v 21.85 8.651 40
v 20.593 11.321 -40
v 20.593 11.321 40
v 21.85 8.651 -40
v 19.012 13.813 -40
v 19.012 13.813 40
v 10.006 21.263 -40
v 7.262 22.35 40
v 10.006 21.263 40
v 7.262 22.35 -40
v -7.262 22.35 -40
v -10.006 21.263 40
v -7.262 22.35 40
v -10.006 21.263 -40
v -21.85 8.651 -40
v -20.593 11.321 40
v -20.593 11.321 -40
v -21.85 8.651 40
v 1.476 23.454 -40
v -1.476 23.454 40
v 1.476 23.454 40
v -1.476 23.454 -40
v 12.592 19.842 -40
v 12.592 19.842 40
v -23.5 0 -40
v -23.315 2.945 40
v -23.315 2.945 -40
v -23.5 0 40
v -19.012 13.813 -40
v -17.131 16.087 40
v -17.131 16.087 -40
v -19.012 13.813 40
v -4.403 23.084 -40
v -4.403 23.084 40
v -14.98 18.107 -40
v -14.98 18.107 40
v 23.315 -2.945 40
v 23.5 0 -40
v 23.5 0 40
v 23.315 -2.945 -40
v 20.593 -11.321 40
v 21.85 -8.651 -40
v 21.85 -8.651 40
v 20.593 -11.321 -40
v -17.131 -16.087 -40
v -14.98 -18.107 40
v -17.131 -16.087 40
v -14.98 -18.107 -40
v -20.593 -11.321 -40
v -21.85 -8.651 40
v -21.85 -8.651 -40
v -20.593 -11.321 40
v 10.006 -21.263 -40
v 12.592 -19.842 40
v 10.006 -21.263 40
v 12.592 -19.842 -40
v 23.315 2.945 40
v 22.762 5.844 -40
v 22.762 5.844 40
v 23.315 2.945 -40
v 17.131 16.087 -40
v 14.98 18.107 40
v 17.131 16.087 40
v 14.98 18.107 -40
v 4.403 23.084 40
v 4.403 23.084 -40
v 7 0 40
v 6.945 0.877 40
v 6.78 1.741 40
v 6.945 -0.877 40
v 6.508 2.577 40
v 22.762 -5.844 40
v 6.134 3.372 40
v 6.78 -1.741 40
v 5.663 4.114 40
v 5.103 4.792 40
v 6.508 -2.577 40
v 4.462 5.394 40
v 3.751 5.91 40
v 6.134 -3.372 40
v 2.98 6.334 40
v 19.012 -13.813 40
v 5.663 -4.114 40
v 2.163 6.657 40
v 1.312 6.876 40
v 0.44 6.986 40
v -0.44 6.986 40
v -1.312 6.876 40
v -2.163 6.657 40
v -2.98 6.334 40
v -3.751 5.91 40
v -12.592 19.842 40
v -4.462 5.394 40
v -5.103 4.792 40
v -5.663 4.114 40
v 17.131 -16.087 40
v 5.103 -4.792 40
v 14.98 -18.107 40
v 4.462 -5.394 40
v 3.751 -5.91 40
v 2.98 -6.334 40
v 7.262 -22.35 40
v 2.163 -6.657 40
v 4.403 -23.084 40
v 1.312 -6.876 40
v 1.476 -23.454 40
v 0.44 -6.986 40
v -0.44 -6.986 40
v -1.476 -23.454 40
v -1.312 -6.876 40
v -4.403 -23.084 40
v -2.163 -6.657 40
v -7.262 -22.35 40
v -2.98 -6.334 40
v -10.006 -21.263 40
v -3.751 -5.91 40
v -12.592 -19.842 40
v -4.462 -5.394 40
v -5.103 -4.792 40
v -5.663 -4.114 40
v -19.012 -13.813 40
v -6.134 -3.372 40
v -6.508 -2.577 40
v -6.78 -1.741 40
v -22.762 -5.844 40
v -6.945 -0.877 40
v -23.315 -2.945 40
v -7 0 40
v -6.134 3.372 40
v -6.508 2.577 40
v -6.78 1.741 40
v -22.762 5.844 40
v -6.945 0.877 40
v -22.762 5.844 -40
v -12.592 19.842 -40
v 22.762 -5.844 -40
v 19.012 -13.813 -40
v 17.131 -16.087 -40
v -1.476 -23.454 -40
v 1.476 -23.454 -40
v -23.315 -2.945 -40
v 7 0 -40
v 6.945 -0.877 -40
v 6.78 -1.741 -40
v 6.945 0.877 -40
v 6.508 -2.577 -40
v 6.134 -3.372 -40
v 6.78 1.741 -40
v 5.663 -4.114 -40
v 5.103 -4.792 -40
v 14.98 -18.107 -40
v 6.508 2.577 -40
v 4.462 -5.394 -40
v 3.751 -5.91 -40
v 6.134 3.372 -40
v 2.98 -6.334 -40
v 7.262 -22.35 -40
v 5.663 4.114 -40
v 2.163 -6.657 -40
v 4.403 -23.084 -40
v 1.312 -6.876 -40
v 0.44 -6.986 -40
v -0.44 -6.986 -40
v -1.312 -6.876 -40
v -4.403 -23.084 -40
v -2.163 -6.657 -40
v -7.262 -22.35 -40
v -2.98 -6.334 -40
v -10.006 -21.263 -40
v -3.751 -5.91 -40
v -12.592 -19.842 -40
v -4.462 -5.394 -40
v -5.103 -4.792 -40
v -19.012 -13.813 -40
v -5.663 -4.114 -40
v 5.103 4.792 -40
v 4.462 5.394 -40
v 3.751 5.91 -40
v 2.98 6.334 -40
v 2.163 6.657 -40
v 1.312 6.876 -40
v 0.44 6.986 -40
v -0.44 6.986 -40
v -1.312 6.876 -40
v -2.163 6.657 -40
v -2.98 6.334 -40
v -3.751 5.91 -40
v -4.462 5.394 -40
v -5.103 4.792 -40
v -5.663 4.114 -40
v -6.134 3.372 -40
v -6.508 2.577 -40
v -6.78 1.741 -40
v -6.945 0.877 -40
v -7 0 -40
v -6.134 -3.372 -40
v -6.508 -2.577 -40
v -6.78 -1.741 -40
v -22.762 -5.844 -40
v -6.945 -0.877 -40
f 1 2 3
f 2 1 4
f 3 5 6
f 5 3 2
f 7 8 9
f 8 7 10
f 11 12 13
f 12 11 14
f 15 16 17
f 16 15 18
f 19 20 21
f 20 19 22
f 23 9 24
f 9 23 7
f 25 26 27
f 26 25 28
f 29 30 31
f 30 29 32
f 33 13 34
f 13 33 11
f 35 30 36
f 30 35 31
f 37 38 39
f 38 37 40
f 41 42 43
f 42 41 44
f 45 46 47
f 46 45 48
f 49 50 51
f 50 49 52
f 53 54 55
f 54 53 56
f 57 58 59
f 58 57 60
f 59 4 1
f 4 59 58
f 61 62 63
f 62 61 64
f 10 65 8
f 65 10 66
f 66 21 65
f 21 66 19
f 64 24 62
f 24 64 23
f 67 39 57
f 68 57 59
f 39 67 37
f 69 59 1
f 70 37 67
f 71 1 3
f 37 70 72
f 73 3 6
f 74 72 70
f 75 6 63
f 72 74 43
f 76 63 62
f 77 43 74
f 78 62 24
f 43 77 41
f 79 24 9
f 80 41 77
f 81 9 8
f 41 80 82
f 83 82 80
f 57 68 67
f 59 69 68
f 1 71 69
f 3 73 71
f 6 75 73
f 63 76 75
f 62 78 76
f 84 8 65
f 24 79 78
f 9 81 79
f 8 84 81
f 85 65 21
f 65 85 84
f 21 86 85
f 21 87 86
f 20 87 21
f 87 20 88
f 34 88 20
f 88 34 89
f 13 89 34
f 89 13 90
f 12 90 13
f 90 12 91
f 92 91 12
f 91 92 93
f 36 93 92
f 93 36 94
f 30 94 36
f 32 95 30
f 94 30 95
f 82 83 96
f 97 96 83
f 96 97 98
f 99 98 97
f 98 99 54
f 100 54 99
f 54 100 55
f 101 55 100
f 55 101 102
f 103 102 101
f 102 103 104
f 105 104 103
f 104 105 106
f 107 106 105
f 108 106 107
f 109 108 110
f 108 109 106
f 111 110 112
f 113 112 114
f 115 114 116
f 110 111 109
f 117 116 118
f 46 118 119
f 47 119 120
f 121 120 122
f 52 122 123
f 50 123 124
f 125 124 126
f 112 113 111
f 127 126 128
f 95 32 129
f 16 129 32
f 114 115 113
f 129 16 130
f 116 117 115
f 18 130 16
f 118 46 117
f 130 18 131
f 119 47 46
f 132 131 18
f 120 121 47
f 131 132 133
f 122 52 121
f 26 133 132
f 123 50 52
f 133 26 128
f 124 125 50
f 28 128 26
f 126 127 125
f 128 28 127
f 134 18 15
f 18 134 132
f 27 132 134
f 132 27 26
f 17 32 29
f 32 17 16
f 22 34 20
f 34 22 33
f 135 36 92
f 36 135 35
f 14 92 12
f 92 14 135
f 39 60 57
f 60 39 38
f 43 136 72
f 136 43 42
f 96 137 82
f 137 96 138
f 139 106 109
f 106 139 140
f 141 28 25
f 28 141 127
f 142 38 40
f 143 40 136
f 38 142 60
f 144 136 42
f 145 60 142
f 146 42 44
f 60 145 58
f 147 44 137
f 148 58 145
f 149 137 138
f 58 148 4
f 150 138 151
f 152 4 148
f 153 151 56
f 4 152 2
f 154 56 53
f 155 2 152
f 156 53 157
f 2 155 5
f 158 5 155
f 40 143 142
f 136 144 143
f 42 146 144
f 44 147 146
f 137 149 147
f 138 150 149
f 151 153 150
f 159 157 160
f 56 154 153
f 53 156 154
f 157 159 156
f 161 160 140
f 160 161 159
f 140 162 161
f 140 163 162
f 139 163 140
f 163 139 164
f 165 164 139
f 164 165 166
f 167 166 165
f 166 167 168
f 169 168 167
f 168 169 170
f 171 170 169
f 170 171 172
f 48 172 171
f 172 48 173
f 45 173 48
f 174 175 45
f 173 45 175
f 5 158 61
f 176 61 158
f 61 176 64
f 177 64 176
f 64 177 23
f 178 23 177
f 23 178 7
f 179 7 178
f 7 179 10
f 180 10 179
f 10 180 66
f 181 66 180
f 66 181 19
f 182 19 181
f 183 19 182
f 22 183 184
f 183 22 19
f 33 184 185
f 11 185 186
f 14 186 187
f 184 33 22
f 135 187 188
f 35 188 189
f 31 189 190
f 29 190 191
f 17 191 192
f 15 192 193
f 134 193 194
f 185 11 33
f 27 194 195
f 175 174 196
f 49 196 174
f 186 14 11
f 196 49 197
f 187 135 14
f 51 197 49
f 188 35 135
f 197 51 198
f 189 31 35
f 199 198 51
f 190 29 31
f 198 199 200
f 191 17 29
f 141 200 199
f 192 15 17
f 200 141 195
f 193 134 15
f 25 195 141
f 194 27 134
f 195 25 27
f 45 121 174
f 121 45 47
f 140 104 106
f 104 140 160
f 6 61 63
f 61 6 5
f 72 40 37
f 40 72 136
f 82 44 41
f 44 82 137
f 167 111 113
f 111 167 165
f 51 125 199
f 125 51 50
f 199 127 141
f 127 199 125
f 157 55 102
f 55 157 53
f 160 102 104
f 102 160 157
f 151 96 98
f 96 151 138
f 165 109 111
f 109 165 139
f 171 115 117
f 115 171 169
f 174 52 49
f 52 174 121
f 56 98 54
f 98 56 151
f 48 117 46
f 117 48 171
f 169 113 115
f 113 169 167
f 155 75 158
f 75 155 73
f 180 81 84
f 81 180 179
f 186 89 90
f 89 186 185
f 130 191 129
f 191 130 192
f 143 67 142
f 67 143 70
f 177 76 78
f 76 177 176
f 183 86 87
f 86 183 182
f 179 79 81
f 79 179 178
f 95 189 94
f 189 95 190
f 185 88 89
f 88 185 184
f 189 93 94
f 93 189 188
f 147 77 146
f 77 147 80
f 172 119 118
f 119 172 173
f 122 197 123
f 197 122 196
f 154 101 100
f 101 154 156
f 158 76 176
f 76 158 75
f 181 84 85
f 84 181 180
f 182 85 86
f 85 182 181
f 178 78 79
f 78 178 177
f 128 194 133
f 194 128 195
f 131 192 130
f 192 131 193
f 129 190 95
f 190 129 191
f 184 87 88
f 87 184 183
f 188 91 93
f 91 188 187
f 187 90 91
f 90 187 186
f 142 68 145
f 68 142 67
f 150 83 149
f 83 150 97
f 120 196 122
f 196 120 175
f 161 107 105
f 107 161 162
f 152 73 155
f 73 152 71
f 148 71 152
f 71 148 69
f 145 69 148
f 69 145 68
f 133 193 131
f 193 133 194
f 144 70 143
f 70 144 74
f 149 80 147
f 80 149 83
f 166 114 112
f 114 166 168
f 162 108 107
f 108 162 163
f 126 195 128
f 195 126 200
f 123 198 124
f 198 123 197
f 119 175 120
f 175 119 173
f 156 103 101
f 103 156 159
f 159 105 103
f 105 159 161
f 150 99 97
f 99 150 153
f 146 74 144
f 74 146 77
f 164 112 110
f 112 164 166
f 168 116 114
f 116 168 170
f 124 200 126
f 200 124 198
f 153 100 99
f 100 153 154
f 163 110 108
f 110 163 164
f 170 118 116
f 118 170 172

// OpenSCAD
$fn = 50;


difference() {
	union() {
		translate(v = [0, 0, -40.0000000000]) {
			cylinder(h = 80, r = 23.5000000000);
		}
	}
	union() {
		translate(v = [0, 0, -100.0000000000]) {
			cylinder(h = 200, r = 7);
		}
	}
}
